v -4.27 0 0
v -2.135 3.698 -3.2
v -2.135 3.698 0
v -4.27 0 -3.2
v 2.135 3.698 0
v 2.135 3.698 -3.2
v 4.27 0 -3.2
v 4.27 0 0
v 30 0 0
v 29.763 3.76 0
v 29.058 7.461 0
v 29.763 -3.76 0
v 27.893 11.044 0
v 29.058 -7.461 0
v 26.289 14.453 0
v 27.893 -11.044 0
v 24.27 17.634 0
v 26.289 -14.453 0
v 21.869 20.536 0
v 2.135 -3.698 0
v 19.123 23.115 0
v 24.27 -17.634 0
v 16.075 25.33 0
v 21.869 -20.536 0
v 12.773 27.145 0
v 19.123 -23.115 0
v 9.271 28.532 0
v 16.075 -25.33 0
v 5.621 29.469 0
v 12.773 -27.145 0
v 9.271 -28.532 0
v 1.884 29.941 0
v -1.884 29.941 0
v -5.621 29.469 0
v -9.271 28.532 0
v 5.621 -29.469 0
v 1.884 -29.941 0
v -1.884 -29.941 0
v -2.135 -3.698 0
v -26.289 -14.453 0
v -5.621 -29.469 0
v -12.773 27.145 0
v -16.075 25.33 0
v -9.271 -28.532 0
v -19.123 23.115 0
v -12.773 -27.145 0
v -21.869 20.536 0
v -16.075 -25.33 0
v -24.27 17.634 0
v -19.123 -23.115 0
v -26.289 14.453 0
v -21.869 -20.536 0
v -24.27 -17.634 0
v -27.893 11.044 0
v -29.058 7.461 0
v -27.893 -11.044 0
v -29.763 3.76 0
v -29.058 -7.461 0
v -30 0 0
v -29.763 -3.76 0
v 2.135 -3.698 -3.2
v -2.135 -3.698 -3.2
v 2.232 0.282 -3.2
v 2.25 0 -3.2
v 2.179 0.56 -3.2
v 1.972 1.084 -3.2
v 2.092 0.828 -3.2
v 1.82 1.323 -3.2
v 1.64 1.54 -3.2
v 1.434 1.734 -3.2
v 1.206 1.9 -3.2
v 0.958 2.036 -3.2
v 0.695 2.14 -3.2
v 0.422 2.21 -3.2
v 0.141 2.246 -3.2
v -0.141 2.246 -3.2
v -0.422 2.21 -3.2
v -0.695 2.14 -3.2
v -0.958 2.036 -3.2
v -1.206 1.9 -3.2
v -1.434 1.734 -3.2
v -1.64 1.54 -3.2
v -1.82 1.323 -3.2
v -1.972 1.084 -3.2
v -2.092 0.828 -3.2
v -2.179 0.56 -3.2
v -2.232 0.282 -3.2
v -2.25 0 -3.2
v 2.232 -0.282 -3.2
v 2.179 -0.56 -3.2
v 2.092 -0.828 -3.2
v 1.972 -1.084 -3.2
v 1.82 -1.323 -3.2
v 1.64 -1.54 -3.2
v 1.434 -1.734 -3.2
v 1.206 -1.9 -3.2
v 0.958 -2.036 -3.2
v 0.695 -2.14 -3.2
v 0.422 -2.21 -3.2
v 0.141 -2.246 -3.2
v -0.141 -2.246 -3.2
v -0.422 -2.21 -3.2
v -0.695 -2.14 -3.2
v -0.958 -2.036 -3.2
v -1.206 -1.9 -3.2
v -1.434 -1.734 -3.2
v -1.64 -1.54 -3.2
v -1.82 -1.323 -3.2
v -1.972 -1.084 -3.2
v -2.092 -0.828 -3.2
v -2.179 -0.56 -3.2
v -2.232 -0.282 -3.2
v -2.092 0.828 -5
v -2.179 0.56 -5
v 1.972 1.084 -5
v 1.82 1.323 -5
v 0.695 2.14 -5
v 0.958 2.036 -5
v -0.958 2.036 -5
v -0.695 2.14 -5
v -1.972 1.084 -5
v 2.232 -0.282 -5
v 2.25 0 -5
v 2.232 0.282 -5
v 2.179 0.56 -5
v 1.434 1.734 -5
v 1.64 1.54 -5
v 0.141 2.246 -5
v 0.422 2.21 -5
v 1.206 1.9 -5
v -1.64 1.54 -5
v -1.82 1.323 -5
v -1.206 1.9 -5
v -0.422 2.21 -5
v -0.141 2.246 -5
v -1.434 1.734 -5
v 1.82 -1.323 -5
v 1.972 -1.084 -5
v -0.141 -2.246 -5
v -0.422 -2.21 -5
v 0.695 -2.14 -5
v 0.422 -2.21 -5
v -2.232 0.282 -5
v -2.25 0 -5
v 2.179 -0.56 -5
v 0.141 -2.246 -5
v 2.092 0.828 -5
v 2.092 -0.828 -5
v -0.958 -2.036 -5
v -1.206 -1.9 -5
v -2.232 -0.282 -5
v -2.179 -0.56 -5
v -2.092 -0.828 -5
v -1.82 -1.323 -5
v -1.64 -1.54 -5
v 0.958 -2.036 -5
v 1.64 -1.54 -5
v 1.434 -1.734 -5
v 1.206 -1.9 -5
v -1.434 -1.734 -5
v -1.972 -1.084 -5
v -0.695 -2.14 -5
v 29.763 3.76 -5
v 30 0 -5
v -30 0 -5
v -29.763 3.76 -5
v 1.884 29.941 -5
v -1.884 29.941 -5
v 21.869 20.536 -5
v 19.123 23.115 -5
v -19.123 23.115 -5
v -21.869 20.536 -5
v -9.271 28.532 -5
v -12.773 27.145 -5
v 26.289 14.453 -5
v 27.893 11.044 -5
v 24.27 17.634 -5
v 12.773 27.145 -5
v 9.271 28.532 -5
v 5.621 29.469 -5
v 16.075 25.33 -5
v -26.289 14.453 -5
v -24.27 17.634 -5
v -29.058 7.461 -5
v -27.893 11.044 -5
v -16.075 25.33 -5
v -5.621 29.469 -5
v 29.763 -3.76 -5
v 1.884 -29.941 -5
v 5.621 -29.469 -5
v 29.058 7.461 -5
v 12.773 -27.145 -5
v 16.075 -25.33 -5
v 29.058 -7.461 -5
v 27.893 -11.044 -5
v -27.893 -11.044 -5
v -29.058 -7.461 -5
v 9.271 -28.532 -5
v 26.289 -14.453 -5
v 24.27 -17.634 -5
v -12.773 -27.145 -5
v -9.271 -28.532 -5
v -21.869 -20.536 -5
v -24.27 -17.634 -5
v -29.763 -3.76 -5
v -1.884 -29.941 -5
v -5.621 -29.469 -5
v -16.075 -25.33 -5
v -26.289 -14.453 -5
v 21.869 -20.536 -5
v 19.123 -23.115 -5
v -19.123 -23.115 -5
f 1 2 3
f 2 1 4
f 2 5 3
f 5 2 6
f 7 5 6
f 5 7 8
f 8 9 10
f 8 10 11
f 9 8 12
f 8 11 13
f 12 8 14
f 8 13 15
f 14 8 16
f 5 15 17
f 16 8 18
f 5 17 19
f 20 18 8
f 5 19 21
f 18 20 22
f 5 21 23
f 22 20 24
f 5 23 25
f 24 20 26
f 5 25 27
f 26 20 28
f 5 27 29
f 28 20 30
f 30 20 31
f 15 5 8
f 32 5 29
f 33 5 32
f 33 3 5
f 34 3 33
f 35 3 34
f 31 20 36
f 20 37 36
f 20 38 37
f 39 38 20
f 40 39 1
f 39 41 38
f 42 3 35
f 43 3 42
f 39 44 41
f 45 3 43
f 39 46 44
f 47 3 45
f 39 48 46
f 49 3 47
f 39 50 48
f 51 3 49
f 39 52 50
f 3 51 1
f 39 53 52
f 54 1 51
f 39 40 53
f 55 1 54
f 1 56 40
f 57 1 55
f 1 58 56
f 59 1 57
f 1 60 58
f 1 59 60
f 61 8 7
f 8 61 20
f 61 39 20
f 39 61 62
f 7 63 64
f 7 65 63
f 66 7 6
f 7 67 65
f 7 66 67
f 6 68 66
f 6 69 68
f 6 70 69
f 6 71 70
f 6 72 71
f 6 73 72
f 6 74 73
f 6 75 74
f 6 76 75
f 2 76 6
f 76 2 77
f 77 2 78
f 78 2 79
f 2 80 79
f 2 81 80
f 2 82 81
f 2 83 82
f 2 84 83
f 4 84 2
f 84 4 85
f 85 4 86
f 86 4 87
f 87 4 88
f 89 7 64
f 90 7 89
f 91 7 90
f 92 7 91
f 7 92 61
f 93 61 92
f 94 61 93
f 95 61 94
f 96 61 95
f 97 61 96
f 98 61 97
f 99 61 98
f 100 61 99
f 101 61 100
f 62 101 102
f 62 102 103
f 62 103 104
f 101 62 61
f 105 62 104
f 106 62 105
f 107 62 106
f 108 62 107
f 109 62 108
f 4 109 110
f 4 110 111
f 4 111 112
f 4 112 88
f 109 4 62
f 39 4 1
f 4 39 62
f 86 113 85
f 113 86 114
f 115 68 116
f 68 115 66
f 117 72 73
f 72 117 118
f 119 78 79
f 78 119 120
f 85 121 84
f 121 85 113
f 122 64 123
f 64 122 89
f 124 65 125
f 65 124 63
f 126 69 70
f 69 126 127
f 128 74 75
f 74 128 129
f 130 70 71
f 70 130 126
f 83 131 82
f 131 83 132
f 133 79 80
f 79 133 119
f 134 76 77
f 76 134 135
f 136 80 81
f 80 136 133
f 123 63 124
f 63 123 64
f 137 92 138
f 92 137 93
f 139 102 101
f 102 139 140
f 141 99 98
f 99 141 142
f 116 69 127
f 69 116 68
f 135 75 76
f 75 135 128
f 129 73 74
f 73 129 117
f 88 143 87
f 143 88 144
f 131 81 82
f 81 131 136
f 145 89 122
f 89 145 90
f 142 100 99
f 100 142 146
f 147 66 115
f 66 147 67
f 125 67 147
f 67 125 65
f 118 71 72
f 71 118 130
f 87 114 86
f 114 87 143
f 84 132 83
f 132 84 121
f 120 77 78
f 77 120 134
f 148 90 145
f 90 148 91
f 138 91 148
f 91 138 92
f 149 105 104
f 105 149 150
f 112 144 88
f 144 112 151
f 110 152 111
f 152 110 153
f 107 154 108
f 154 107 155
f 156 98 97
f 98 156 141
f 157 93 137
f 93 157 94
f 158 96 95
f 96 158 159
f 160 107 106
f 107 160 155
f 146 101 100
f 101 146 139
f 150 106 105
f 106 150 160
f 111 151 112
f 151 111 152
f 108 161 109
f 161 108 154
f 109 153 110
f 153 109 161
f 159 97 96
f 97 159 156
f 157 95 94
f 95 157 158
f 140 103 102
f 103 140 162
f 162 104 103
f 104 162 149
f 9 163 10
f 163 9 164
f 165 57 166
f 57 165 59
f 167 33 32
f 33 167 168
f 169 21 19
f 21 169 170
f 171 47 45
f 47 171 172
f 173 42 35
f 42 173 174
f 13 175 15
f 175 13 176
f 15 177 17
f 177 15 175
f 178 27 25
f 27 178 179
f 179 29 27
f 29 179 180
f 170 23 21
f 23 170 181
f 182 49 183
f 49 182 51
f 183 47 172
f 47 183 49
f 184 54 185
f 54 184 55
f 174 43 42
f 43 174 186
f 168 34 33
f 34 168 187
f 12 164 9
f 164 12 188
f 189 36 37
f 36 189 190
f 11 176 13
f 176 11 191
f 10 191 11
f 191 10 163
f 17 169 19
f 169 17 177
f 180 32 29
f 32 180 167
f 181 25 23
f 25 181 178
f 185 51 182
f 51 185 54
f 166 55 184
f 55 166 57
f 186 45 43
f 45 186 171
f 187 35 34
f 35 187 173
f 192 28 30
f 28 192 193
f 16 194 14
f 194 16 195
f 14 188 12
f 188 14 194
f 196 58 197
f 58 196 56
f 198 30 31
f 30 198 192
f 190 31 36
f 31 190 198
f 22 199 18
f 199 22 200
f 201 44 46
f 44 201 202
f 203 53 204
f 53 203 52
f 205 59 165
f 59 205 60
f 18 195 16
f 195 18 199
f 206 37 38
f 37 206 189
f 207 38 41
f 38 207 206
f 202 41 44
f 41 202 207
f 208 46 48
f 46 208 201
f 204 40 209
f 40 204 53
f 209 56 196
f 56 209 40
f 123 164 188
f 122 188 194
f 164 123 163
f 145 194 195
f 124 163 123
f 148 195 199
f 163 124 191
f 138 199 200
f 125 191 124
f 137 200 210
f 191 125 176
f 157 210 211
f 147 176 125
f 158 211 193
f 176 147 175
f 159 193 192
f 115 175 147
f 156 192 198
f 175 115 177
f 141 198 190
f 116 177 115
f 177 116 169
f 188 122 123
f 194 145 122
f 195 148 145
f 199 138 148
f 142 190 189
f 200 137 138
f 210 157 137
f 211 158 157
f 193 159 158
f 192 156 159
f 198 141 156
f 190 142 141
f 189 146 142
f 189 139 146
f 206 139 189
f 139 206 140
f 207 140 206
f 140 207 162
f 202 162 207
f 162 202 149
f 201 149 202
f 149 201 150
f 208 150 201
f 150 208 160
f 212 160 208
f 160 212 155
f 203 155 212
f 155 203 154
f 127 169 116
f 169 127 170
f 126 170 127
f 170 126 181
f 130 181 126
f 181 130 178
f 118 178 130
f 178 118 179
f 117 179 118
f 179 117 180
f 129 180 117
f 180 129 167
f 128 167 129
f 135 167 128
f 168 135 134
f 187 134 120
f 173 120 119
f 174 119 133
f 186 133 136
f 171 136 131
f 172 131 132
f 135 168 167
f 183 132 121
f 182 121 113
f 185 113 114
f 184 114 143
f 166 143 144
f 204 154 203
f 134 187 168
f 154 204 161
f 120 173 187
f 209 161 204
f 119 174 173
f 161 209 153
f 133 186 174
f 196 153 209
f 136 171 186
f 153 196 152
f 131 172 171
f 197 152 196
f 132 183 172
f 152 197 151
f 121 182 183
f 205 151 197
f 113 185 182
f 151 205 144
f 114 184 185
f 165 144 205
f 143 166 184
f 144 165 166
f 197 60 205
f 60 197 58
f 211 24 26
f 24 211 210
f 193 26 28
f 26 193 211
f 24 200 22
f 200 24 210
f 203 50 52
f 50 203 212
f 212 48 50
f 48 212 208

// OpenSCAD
$fn = 50;


difference() {
	union() {
		translate(v = [0, 0, -5.0000000000]) {
			cylinder(h = 5.0000000000, r = 30.0000000000);
		}
	}
	union() {
		translate(v = [0, 0, 0]) {
			rotate(a = [0, 0, 0]) {
				difference() {
					union() {
						translate(v = [0, 0, -3.2000000000]) {
							#linear_extrude(height = 3.2000000000) {
								polygon(points = [[4.2698000000, 0.0000000000], [2.1349000000, 3.6977552691], [-2.1349000000, 3.6977552691], [-4.2698000000, 0.0000000000], [-2.1349000000, -3.6977552691], [2.1349000000, -3.6977552691]]);
							}
						}
					}
					union();
				}
			}
		}
		#translate(v = [0, 0, -100.0000000000]) {
			cylinder(h = 200, r = 2.2500000000);
		}
	}
}
